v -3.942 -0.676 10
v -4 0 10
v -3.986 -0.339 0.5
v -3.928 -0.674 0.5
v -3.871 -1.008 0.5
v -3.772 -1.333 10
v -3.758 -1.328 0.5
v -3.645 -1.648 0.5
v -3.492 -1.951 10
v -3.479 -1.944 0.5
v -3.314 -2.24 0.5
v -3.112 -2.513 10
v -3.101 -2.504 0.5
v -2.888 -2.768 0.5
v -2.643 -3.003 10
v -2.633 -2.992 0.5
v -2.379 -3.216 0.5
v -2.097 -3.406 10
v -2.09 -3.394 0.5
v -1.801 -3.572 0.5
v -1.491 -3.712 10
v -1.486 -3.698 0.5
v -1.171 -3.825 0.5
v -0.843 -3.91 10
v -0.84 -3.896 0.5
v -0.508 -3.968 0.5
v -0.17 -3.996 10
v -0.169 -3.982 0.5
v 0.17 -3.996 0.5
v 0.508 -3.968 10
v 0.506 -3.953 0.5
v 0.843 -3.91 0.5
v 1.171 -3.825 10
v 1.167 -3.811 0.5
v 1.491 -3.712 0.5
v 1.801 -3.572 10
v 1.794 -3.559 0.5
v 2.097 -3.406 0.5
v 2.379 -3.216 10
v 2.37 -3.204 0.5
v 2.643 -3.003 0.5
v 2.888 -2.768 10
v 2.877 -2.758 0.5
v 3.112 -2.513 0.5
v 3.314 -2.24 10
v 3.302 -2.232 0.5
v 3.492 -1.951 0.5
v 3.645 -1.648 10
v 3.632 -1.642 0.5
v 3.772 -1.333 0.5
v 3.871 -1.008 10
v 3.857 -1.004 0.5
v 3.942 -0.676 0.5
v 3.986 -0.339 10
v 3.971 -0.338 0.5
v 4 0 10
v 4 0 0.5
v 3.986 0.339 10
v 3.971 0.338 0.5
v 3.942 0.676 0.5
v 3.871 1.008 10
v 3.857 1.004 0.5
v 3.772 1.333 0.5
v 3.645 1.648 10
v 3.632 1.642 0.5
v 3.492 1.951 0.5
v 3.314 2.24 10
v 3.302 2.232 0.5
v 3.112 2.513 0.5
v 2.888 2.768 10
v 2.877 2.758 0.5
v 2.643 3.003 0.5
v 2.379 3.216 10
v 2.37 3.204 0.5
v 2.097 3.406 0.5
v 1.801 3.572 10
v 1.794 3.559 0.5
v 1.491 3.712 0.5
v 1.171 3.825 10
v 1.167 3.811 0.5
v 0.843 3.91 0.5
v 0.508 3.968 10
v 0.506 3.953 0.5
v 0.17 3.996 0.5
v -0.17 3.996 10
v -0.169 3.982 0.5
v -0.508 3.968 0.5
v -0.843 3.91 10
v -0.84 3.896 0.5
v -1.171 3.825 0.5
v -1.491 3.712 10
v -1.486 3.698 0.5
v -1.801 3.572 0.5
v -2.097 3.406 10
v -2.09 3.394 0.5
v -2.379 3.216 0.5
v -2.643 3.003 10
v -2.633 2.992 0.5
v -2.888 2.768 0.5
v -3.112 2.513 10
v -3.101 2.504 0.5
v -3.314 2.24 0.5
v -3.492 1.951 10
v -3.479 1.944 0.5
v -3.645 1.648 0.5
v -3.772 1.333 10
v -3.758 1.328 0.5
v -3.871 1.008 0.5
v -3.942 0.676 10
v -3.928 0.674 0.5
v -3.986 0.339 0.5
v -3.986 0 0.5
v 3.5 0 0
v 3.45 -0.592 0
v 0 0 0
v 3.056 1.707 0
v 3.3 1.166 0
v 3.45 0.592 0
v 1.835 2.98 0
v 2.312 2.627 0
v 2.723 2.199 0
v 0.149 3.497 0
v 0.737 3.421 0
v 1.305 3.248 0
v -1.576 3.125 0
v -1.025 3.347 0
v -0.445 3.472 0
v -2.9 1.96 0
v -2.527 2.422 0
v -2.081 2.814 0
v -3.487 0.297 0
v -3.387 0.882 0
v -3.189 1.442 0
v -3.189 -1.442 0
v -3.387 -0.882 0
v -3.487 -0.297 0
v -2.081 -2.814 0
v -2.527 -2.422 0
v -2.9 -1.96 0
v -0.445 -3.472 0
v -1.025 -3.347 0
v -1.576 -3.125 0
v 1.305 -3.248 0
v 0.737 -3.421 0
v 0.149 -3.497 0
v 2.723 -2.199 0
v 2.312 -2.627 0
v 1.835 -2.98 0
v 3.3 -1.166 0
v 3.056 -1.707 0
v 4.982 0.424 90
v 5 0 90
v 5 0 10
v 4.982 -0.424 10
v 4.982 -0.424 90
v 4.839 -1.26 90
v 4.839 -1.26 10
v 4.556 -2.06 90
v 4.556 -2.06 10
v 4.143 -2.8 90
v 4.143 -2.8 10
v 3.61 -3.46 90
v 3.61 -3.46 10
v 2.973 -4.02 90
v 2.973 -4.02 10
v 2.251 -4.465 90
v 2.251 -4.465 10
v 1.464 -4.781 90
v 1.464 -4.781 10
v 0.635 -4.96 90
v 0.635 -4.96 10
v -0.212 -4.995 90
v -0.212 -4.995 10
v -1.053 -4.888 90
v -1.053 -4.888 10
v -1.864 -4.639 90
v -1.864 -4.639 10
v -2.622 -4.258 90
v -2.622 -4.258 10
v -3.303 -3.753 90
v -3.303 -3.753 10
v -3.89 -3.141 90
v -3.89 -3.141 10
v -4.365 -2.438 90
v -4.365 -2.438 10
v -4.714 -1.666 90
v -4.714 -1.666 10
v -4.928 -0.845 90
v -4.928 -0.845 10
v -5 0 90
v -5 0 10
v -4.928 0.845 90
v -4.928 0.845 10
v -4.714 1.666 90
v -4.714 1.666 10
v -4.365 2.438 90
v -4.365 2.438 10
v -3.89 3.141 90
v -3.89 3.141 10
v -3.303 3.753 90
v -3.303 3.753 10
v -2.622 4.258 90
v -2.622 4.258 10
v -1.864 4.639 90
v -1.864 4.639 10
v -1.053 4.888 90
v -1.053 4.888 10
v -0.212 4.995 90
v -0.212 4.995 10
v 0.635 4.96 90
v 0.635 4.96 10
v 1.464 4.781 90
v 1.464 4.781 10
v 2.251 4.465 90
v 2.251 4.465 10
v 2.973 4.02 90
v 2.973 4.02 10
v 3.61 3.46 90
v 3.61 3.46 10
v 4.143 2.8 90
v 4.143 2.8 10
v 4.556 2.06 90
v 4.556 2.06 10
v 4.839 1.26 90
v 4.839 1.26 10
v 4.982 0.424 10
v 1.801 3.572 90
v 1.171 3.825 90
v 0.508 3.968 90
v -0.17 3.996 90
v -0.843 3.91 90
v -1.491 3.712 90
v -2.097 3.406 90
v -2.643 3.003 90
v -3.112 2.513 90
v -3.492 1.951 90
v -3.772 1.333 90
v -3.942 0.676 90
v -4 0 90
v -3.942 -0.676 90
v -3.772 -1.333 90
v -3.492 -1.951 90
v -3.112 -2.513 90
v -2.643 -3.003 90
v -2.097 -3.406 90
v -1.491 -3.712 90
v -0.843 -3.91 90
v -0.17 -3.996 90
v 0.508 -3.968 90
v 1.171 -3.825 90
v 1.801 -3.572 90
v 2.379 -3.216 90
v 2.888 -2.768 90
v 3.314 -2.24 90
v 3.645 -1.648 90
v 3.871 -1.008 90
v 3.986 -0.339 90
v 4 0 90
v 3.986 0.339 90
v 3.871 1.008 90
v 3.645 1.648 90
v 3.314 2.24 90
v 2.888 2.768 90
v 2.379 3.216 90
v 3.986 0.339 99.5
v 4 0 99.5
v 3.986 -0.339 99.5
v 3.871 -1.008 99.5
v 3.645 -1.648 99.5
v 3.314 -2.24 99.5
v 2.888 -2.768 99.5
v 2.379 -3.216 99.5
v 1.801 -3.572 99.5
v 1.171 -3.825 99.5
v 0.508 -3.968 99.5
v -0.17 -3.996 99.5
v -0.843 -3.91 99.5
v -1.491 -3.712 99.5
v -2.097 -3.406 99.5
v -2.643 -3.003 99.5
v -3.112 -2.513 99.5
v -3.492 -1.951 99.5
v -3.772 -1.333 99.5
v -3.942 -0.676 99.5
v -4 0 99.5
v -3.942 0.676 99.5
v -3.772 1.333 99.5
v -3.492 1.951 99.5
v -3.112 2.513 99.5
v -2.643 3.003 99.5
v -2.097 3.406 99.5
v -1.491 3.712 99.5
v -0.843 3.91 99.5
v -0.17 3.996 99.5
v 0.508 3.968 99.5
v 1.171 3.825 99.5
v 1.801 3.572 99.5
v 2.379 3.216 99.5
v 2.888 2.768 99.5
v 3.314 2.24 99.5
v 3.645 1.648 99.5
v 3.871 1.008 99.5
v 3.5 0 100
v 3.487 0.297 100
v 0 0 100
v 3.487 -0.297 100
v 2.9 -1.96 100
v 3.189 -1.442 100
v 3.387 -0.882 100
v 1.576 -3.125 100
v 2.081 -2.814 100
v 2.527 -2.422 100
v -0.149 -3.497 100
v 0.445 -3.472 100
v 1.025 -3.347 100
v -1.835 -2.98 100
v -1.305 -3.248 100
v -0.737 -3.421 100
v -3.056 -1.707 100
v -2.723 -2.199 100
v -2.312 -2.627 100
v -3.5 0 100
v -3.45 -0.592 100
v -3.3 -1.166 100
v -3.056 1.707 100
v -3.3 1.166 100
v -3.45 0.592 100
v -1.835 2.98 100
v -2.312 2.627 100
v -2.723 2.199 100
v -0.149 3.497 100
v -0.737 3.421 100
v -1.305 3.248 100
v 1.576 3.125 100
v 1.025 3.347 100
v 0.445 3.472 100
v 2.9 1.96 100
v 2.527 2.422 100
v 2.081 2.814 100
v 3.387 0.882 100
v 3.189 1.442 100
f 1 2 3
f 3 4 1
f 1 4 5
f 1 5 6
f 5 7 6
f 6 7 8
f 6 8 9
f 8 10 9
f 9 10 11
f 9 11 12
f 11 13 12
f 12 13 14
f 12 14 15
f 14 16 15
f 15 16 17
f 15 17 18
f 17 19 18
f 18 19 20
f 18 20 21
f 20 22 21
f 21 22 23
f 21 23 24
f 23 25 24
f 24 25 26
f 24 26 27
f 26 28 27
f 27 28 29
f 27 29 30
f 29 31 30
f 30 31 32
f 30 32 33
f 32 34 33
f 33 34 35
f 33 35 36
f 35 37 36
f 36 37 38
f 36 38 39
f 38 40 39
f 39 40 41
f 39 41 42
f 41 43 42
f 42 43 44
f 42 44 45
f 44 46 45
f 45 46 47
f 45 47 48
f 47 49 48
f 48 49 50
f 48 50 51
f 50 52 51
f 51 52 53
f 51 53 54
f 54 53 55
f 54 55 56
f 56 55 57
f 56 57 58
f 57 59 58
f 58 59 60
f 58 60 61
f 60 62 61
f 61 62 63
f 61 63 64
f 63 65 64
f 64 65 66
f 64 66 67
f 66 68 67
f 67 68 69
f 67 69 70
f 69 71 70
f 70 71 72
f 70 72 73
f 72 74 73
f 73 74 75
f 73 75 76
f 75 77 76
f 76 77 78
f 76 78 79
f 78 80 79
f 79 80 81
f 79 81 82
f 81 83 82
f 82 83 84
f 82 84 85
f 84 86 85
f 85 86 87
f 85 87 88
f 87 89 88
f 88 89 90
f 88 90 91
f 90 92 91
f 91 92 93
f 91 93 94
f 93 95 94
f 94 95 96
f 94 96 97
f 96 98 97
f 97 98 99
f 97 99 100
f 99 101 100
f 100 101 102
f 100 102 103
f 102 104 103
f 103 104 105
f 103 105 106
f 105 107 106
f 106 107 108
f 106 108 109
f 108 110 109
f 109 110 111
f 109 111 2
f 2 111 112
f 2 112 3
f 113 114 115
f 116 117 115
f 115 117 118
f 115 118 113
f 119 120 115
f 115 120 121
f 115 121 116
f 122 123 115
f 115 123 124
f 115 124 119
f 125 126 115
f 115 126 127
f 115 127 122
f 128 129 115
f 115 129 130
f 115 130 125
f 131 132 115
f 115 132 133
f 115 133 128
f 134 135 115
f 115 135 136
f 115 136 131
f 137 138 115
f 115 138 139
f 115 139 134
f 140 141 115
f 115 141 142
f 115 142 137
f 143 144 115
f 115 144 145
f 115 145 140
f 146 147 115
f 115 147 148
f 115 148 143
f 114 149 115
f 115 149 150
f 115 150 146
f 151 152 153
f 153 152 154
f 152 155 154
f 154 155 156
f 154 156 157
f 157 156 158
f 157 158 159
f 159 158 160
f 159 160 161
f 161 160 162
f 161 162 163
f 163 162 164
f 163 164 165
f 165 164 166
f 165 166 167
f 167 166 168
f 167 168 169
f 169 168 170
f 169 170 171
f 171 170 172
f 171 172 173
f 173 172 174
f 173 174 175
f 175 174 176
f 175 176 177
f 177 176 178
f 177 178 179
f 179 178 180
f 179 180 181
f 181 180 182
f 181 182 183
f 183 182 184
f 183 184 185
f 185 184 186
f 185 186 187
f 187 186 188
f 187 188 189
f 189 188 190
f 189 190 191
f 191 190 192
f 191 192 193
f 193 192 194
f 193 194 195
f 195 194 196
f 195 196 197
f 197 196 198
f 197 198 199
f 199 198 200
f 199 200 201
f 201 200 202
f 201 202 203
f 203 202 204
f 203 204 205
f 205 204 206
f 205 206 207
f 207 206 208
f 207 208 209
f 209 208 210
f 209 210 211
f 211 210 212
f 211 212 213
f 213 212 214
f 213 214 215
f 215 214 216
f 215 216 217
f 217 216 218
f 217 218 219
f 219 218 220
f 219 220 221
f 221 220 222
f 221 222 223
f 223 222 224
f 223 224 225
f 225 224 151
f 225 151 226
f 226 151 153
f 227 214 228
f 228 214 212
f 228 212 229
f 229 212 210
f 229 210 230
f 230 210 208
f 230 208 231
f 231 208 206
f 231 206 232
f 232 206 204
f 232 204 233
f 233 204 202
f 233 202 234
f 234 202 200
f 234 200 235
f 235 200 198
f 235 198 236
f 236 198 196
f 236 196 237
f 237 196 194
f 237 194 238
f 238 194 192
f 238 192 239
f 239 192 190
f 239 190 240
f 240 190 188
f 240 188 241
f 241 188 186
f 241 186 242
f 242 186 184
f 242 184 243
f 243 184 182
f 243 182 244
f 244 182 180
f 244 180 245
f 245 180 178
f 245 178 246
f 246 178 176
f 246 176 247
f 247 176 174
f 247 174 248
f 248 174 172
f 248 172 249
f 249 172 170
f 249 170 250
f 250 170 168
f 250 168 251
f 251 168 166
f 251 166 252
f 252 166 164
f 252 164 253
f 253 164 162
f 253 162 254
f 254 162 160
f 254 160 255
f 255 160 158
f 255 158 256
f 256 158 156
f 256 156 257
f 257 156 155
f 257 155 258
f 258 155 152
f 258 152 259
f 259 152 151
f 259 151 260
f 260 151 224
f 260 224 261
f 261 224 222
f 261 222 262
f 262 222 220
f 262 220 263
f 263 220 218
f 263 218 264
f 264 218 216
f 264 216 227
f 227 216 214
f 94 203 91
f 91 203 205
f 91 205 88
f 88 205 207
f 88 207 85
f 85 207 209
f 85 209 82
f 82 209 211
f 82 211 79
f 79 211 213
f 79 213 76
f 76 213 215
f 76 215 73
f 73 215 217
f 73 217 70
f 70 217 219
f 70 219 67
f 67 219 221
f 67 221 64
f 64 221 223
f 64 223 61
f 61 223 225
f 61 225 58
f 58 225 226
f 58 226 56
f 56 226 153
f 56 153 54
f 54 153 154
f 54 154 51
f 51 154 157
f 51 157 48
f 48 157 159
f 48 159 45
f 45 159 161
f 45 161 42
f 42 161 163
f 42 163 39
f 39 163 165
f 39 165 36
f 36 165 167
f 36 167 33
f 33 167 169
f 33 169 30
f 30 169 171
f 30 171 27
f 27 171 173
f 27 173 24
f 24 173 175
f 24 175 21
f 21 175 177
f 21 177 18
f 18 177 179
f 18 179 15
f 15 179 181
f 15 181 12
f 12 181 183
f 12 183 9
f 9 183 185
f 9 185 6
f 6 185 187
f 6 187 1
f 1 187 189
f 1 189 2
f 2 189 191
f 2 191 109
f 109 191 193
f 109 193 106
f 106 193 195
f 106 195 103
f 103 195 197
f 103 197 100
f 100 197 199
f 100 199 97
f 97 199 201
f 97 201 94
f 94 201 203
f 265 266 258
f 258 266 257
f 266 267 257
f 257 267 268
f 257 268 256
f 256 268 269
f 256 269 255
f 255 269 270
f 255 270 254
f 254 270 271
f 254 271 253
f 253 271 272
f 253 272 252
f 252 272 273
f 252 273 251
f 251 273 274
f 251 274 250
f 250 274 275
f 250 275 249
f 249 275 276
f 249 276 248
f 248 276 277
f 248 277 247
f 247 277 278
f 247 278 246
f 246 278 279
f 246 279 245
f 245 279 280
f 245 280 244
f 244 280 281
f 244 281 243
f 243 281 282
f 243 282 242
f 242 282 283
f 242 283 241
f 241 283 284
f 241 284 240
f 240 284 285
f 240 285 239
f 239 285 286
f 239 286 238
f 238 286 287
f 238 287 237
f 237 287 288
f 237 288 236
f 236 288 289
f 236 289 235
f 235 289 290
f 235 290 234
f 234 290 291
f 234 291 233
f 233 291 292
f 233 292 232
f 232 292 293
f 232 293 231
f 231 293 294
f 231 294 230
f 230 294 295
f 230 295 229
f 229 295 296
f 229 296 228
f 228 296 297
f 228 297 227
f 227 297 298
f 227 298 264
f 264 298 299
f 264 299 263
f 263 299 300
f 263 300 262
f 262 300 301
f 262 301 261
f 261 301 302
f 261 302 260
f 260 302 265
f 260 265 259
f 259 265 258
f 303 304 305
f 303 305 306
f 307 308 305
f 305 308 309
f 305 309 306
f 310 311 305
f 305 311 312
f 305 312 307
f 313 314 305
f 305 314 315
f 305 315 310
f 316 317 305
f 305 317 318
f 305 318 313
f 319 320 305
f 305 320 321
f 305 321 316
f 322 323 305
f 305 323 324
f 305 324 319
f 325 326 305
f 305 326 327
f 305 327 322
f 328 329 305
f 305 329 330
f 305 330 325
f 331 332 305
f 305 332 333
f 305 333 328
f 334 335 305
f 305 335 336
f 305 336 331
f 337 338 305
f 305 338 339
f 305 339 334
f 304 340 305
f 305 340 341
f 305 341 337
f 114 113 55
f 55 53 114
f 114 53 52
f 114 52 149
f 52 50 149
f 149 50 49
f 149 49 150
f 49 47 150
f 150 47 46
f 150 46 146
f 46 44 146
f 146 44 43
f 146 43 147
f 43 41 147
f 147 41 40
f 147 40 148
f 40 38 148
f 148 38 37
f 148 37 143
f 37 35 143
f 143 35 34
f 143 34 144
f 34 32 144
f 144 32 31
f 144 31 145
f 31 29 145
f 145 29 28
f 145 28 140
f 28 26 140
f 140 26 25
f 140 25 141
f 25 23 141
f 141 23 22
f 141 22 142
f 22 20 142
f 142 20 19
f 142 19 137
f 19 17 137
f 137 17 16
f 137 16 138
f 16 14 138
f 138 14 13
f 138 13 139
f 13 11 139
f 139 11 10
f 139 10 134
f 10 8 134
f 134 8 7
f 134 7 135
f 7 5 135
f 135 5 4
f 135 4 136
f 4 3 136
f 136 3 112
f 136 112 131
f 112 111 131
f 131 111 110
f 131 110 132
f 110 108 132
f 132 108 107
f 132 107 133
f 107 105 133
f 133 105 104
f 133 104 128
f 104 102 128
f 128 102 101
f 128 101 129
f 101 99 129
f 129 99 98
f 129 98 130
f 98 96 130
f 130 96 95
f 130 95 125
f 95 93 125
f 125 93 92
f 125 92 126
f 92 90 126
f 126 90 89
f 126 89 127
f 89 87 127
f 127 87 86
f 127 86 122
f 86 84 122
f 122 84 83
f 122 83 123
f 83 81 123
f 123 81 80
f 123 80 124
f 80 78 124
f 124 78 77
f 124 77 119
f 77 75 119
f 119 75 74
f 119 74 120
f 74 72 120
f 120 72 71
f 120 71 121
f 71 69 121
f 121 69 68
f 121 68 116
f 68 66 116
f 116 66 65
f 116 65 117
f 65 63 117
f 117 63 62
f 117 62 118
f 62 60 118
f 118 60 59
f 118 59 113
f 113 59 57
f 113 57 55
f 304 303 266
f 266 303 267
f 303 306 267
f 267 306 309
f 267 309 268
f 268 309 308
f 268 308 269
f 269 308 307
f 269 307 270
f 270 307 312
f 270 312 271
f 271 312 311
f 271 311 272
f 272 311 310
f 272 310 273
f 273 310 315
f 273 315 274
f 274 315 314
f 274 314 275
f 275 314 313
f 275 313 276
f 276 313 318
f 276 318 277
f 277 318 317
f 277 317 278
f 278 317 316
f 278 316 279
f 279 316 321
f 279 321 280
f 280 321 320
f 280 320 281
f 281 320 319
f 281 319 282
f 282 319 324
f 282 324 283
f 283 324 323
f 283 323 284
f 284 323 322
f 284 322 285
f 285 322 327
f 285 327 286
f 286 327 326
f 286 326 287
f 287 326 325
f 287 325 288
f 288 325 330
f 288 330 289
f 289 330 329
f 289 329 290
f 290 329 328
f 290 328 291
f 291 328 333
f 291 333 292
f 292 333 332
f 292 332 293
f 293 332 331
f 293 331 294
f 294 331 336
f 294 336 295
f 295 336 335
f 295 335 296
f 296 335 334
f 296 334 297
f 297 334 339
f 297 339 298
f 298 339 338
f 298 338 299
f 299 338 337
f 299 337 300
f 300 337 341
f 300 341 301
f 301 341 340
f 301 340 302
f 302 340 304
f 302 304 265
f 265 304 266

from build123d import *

# Parameters (mm, degrees)
ESQUISSE1_R        = 4
BOSS_EXTRU_1_DEPTH = 10
ESQUISSE2_R        = 5
BOSS_EXTRU_2_DEPTH = 80
ESQUISSE3_R        = 4
BOSS_EXTRU_3_DEPTH = 10
CHANFREIN1_SIZE    = 0.5


with BuildPart() as part:
    # Esquisse1 → Boss.-Extru.1 (new body)
    with BuildSketch(Plane.XY):
        Circle(ESQUISSE1_R)
    extrude(amount=BOSS_EXTRU_1_DEPTH)

    # Esquisse2 → Boss.-Extru.2 (add)
    with BuildSketch(Plane.XY.offset(10)):
        Circle(ESQUISSE2_R)
    extrude(amount=BOSS_EXTRU_2_DEPTH)

    # Esquisse3 → Boss.-Extru.3 (add)
    with BuildSketch(Plane.XY.offset(90)):
        Circle(ESQUISSE3_R)
    extrude(amount=BOSS_EXTRU_3_DEPTH)

    # Chanfrein1
    chanfrein1_edges = [part.edges().sort_by_distance(p)[0] for p in [
        (-4, 0, 100),
        (-4, 0, 0),
    ]]
    chamfer(chanfrein1_edges, length=CHANFREIN1_SIZE)


solid = part.part
